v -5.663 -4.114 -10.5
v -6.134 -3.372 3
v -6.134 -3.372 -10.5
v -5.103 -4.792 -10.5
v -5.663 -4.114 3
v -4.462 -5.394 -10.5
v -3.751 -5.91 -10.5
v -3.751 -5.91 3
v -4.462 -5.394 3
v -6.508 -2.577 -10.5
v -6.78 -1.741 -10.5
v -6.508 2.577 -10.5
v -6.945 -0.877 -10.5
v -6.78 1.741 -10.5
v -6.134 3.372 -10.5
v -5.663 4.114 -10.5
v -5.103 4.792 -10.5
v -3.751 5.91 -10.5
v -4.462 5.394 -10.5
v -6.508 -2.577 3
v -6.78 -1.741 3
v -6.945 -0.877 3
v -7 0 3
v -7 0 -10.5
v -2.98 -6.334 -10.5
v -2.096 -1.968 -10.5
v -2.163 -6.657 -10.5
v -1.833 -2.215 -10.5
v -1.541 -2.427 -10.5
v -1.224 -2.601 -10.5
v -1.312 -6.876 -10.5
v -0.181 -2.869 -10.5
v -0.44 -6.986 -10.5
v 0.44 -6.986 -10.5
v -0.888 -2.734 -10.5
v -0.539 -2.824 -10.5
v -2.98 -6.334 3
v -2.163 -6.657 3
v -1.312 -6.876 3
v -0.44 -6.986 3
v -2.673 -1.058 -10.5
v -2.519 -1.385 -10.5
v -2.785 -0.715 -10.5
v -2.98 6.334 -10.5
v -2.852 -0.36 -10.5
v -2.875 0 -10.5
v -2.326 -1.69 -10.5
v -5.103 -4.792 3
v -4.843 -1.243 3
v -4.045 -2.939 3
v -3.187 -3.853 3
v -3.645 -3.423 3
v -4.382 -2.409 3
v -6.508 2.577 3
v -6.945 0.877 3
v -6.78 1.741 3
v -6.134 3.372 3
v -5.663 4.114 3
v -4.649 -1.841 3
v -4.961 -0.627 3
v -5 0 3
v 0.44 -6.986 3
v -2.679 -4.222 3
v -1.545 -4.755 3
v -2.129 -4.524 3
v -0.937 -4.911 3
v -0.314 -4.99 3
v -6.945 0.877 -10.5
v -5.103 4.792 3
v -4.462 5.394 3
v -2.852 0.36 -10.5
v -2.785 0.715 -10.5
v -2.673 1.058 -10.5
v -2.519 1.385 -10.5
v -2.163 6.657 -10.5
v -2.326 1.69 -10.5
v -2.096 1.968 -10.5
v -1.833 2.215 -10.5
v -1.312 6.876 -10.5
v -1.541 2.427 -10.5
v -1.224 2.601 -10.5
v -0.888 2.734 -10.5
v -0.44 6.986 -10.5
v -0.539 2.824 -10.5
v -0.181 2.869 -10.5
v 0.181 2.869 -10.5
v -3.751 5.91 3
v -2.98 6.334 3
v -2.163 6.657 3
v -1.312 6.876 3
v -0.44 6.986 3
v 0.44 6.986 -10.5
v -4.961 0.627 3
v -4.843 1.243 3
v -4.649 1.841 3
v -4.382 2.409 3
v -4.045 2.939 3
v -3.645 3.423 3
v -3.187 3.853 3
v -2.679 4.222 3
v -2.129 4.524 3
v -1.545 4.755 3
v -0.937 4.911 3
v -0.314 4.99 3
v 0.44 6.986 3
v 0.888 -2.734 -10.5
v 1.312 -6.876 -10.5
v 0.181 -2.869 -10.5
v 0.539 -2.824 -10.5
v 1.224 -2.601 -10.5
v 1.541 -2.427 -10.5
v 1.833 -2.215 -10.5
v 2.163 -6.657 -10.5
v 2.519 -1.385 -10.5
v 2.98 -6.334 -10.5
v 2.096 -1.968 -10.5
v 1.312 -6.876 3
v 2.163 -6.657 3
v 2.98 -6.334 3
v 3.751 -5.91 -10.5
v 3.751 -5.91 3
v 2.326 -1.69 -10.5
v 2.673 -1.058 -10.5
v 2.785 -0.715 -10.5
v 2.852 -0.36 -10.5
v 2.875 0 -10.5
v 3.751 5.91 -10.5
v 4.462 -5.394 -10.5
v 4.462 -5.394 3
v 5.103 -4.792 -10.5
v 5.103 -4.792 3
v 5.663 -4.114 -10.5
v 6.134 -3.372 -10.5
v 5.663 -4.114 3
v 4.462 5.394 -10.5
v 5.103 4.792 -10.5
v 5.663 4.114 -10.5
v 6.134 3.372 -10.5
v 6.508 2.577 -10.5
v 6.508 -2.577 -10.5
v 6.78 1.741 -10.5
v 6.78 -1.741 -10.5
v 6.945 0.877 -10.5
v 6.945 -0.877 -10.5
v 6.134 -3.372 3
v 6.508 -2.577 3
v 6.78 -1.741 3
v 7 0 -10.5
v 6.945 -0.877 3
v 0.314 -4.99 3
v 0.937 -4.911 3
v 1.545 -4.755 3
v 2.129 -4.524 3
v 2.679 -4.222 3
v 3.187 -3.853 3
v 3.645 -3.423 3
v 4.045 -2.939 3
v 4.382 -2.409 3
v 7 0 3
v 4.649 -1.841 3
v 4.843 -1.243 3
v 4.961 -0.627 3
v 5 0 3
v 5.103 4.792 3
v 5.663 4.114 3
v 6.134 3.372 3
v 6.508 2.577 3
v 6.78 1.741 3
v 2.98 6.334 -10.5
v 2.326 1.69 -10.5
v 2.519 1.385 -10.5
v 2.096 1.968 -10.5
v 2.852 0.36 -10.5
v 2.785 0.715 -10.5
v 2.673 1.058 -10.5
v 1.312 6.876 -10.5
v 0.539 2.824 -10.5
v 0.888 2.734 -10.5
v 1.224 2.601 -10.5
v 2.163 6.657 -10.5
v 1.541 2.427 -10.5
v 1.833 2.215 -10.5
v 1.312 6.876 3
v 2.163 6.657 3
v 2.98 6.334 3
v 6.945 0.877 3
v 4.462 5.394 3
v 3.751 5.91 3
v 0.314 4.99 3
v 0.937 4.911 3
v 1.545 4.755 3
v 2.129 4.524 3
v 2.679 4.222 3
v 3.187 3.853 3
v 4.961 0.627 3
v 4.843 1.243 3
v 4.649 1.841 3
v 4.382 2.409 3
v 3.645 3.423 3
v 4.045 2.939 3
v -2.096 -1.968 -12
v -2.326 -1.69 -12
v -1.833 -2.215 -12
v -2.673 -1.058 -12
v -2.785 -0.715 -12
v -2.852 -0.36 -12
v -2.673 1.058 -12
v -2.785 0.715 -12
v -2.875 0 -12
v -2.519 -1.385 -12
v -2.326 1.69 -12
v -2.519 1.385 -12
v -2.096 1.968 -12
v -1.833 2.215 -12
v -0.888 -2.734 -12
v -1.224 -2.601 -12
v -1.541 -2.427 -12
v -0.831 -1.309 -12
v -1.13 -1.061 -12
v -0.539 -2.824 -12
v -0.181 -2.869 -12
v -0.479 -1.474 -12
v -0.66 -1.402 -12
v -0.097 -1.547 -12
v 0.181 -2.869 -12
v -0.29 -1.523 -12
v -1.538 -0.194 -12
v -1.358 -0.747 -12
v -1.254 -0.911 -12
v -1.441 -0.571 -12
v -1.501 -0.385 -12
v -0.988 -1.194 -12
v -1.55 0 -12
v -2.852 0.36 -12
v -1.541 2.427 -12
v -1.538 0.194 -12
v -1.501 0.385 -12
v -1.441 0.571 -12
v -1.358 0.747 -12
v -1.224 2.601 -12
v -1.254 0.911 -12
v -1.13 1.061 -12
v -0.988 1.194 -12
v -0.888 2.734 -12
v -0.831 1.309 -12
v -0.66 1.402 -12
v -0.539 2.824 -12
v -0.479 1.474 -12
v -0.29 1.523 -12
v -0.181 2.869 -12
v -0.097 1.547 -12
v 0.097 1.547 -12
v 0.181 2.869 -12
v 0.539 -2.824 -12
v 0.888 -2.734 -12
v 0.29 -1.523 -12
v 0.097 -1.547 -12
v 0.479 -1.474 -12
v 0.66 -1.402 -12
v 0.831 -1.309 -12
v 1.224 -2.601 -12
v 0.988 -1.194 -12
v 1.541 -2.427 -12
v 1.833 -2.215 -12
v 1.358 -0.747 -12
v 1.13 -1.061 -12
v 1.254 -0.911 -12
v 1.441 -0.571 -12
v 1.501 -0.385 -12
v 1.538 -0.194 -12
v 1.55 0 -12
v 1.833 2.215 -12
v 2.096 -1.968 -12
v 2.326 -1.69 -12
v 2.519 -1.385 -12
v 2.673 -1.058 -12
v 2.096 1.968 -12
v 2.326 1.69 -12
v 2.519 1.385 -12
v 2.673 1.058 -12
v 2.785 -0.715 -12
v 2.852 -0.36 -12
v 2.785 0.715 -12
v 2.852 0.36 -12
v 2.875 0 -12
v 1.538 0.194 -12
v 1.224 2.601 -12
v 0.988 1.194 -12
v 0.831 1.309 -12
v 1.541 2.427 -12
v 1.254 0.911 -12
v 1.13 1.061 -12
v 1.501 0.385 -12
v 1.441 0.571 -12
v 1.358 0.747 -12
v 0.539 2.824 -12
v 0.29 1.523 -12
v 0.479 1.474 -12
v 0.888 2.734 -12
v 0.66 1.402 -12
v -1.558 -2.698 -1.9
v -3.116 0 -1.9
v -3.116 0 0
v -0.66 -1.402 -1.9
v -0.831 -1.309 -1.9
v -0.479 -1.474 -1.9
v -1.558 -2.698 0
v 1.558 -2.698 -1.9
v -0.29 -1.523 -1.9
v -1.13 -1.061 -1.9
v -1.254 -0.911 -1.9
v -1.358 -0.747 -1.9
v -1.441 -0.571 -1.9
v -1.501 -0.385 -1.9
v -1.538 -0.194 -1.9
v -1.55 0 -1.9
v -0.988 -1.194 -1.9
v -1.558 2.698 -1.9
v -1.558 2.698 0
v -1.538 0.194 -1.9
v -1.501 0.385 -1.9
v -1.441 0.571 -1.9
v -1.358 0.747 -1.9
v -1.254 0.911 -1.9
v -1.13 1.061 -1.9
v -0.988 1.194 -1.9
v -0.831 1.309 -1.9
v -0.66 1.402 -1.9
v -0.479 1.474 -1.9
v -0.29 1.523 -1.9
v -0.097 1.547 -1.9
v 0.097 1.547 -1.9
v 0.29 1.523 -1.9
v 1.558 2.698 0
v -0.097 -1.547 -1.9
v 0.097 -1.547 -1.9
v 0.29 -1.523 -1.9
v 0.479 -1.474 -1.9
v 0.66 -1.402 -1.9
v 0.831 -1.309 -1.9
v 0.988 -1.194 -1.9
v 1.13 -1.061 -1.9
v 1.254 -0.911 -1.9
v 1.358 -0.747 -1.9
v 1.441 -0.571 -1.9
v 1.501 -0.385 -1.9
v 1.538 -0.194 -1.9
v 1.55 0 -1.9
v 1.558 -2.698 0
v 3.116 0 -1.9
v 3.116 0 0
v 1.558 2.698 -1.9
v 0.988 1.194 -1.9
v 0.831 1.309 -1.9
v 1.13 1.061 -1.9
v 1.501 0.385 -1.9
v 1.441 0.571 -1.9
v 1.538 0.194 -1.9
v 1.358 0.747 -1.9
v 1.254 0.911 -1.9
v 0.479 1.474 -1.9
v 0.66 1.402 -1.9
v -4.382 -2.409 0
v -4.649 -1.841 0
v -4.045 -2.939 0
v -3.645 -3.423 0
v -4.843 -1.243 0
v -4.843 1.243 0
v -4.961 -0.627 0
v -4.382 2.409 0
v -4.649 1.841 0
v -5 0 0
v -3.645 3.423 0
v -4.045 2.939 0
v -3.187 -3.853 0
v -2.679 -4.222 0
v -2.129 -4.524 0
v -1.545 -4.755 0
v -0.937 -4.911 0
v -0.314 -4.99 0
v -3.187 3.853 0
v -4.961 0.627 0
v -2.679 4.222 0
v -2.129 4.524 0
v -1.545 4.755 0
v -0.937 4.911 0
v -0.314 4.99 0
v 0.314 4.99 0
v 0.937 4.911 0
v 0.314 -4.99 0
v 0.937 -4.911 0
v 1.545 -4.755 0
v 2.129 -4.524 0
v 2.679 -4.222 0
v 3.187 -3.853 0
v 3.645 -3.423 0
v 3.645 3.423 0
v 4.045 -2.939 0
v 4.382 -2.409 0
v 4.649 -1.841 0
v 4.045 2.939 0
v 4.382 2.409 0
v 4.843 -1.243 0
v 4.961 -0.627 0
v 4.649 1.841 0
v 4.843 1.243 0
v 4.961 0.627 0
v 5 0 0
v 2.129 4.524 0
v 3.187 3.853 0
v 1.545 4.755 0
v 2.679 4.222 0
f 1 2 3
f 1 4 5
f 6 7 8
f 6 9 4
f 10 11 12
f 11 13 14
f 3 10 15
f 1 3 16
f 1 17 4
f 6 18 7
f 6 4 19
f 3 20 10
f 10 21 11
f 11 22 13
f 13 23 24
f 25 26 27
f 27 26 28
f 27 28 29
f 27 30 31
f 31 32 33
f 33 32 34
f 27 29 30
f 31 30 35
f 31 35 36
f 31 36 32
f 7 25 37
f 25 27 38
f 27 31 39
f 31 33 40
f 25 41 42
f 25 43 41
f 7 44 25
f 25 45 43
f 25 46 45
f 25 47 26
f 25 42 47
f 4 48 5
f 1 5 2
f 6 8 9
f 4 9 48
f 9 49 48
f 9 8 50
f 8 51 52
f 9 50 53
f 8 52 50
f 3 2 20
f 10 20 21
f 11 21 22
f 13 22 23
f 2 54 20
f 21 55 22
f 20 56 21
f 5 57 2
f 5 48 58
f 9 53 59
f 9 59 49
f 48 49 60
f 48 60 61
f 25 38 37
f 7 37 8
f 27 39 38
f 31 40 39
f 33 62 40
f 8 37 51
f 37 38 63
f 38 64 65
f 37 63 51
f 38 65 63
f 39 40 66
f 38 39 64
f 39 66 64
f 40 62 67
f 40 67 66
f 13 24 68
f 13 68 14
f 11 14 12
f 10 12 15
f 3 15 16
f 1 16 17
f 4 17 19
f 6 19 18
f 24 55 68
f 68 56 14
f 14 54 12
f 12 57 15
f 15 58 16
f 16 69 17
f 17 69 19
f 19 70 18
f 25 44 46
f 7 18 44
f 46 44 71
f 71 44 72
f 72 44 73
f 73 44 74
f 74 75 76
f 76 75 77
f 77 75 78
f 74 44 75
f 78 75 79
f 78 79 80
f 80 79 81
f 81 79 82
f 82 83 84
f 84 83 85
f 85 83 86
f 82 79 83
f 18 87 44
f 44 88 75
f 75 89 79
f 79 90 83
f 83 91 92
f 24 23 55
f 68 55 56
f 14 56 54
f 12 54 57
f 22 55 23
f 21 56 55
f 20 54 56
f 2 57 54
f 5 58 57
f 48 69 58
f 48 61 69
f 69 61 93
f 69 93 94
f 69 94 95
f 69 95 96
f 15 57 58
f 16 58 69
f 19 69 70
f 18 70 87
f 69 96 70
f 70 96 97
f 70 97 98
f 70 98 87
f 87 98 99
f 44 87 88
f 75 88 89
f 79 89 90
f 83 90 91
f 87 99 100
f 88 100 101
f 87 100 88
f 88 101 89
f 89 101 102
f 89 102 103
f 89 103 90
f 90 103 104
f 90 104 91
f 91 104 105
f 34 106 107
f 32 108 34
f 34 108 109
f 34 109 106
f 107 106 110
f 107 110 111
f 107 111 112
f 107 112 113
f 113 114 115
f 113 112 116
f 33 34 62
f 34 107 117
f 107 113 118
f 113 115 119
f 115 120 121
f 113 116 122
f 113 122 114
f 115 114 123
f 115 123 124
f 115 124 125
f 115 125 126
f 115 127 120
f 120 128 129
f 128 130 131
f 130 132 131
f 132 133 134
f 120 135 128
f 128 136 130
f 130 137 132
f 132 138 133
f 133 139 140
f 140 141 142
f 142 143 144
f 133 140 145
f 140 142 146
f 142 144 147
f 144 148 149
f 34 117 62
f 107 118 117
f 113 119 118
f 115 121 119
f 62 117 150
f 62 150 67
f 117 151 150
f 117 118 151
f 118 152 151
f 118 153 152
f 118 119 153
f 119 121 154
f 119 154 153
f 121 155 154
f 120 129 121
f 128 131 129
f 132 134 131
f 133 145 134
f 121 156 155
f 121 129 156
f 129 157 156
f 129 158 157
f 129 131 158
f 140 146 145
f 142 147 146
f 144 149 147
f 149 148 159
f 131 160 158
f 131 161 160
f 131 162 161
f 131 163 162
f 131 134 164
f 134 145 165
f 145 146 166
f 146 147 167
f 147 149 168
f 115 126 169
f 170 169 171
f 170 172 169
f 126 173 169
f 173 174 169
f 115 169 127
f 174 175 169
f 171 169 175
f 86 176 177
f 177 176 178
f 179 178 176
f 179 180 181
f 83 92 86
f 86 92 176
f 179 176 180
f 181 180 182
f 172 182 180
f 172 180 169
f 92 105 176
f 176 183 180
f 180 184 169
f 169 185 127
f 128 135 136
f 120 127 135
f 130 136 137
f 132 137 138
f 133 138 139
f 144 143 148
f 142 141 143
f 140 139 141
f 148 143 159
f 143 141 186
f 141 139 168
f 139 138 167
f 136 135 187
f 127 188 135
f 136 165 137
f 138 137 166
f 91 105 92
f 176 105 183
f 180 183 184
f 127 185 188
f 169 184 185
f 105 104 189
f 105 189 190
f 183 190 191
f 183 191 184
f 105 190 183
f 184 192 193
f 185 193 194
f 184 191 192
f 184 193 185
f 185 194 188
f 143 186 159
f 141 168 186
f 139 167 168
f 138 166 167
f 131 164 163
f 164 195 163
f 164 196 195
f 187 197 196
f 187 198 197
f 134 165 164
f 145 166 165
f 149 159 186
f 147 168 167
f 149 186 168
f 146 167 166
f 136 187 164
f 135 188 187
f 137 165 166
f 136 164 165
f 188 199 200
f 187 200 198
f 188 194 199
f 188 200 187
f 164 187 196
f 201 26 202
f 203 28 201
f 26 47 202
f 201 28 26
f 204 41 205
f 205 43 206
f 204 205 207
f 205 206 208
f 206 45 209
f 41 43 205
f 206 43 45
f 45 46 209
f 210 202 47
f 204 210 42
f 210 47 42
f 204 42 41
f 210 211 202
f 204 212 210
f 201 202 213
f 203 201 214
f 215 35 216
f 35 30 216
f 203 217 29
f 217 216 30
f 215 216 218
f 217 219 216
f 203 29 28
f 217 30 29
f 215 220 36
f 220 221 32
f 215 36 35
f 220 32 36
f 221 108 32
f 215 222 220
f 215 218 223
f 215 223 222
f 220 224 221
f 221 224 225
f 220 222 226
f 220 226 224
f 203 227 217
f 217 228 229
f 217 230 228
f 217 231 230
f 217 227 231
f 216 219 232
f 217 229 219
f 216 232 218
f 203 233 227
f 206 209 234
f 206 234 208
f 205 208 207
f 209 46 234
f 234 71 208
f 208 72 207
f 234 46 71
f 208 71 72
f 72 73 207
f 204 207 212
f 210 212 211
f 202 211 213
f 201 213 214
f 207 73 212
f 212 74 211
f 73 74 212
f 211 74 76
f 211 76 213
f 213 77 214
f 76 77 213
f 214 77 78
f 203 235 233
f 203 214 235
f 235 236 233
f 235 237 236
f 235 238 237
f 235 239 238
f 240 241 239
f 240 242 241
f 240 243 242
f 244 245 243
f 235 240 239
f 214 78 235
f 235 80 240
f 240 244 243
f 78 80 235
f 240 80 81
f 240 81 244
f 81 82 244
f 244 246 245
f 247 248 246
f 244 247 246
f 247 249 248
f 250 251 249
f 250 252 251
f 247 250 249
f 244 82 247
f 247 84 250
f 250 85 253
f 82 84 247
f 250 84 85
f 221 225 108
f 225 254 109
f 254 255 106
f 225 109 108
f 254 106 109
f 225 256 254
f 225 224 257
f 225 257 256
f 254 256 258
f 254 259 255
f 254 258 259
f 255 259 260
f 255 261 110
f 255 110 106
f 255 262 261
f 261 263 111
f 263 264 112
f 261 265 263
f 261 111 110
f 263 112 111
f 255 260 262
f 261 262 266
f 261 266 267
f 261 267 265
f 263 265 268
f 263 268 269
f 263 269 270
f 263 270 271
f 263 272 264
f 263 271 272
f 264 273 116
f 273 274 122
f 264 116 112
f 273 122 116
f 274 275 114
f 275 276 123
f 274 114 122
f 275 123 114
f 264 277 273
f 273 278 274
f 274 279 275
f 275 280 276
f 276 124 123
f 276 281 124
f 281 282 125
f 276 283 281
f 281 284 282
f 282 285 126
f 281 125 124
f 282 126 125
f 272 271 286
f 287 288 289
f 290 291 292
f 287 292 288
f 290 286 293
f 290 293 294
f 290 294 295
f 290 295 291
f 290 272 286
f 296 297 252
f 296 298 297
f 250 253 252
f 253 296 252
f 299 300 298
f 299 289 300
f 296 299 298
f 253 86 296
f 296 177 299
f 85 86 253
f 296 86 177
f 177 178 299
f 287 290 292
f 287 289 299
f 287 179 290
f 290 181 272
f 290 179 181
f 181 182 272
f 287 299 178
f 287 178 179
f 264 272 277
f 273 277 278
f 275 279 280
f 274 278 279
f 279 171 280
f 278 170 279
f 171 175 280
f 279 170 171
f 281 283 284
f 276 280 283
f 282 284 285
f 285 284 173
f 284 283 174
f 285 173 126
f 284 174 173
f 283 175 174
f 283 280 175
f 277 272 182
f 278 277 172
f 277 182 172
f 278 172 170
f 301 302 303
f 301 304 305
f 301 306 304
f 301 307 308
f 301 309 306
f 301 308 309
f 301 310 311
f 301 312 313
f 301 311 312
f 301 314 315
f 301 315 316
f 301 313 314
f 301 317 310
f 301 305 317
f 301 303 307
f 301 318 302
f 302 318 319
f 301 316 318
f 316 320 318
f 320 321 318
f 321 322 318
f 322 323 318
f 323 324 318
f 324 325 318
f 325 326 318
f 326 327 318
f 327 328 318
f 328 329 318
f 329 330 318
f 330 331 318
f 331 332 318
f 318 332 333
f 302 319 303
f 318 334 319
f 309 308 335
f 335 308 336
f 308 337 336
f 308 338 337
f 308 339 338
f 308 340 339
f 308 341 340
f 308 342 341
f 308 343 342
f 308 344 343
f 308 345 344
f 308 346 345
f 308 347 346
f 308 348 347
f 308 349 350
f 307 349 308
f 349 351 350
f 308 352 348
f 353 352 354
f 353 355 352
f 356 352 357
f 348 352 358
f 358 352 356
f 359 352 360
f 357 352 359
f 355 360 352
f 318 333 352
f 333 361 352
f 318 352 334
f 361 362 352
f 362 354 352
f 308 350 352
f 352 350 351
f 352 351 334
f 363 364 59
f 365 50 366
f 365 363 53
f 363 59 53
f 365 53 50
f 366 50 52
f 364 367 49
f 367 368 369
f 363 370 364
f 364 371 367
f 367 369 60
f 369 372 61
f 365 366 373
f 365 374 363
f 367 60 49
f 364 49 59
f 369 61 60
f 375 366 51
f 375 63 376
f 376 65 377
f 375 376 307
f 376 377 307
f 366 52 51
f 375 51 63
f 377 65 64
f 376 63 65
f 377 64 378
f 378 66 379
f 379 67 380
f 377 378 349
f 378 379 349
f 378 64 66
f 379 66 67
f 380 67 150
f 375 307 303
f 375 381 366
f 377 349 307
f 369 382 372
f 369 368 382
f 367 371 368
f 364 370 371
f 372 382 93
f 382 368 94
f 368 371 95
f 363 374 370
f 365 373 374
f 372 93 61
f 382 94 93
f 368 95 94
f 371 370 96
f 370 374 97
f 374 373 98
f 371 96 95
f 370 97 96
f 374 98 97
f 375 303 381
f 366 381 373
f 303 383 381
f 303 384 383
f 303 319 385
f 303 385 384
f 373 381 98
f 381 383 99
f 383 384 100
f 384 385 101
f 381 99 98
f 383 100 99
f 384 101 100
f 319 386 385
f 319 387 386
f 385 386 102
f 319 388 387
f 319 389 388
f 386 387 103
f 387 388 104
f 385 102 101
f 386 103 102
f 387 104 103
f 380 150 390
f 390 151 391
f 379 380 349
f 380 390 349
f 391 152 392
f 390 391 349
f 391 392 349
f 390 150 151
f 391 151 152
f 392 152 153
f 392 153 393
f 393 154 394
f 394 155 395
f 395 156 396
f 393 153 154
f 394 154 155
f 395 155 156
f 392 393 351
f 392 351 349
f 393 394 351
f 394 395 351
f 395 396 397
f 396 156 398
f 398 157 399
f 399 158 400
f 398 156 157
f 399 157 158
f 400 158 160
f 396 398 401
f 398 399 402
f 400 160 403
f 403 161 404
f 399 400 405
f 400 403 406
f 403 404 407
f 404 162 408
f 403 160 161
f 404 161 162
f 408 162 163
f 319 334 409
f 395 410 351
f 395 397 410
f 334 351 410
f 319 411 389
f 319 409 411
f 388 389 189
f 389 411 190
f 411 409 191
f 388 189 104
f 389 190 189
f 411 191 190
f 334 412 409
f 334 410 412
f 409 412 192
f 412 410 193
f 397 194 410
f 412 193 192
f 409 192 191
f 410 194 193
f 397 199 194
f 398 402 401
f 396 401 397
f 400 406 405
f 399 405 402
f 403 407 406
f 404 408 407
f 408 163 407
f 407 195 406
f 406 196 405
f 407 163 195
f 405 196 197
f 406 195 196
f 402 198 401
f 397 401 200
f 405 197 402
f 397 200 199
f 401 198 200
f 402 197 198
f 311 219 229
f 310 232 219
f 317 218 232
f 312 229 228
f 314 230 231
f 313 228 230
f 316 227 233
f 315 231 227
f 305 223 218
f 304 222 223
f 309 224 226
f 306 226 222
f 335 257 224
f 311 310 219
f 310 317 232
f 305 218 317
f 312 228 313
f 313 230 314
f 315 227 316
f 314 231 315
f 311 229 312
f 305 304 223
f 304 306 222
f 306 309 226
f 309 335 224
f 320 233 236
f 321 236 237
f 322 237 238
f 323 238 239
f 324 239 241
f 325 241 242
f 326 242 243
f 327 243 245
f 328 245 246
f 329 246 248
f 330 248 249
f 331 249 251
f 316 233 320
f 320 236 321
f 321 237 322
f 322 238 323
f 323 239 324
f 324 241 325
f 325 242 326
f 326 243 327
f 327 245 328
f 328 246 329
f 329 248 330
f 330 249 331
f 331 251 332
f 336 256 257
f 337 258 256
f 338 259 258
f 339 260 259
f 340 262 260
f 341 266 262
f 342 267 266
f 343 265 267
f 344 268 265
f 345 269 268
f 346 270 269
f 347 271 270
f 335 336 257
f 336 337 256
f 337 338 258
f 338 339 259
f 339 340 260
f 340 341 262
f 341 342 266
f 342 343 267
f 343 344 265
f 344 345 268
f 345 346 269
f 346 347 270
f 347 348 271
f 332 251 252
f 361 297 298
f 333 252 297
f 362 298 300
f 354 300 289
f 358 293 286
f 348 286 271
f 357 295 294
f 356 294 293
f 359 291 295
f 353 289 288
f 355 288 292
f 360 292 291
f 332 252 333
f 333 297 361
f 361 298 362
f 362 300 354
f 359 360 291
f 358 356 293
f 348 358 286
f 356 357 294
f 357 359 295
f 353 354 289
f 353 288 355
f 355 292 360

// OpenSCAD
$fn = 50;

difference() {
	union() {
		translate(v = [0, 0, -10.5]) {
			cylinder(h = 13.5, r = 7.0);
		}
		#translate(v = [0, 0, -12.0]) {
			cylinder(h = 12, r = 2.875);
		}
	}
	union() {
		translate(v = [0, 0, 0]) {
			rotate(a = [0, 0, 0]) {
				difference() {
					union() {
						translate(v = [0, 0, -1.9]) {
							linear_extrude(height = 1.9) {
								polygon(points = [[3.1158, 0.0], [1.5579000000000005, 2.698361953111554], [-1.5578999999999994, 2.6983619531115544], [-3.1158, 3.815754496783323e-16], [-1.5579000000000014, -2.6983619531115535], [1.557899999999998, -2.6983619531115552]]);
							}
						}
					}
					union();
				}
			}
		}
		#cylinder(h = 3, r = 5.0);
		#translate(v = [0, 0, -100.0]) {
			cylinder(h = 200, r = 1.55);
		}
	}
}
